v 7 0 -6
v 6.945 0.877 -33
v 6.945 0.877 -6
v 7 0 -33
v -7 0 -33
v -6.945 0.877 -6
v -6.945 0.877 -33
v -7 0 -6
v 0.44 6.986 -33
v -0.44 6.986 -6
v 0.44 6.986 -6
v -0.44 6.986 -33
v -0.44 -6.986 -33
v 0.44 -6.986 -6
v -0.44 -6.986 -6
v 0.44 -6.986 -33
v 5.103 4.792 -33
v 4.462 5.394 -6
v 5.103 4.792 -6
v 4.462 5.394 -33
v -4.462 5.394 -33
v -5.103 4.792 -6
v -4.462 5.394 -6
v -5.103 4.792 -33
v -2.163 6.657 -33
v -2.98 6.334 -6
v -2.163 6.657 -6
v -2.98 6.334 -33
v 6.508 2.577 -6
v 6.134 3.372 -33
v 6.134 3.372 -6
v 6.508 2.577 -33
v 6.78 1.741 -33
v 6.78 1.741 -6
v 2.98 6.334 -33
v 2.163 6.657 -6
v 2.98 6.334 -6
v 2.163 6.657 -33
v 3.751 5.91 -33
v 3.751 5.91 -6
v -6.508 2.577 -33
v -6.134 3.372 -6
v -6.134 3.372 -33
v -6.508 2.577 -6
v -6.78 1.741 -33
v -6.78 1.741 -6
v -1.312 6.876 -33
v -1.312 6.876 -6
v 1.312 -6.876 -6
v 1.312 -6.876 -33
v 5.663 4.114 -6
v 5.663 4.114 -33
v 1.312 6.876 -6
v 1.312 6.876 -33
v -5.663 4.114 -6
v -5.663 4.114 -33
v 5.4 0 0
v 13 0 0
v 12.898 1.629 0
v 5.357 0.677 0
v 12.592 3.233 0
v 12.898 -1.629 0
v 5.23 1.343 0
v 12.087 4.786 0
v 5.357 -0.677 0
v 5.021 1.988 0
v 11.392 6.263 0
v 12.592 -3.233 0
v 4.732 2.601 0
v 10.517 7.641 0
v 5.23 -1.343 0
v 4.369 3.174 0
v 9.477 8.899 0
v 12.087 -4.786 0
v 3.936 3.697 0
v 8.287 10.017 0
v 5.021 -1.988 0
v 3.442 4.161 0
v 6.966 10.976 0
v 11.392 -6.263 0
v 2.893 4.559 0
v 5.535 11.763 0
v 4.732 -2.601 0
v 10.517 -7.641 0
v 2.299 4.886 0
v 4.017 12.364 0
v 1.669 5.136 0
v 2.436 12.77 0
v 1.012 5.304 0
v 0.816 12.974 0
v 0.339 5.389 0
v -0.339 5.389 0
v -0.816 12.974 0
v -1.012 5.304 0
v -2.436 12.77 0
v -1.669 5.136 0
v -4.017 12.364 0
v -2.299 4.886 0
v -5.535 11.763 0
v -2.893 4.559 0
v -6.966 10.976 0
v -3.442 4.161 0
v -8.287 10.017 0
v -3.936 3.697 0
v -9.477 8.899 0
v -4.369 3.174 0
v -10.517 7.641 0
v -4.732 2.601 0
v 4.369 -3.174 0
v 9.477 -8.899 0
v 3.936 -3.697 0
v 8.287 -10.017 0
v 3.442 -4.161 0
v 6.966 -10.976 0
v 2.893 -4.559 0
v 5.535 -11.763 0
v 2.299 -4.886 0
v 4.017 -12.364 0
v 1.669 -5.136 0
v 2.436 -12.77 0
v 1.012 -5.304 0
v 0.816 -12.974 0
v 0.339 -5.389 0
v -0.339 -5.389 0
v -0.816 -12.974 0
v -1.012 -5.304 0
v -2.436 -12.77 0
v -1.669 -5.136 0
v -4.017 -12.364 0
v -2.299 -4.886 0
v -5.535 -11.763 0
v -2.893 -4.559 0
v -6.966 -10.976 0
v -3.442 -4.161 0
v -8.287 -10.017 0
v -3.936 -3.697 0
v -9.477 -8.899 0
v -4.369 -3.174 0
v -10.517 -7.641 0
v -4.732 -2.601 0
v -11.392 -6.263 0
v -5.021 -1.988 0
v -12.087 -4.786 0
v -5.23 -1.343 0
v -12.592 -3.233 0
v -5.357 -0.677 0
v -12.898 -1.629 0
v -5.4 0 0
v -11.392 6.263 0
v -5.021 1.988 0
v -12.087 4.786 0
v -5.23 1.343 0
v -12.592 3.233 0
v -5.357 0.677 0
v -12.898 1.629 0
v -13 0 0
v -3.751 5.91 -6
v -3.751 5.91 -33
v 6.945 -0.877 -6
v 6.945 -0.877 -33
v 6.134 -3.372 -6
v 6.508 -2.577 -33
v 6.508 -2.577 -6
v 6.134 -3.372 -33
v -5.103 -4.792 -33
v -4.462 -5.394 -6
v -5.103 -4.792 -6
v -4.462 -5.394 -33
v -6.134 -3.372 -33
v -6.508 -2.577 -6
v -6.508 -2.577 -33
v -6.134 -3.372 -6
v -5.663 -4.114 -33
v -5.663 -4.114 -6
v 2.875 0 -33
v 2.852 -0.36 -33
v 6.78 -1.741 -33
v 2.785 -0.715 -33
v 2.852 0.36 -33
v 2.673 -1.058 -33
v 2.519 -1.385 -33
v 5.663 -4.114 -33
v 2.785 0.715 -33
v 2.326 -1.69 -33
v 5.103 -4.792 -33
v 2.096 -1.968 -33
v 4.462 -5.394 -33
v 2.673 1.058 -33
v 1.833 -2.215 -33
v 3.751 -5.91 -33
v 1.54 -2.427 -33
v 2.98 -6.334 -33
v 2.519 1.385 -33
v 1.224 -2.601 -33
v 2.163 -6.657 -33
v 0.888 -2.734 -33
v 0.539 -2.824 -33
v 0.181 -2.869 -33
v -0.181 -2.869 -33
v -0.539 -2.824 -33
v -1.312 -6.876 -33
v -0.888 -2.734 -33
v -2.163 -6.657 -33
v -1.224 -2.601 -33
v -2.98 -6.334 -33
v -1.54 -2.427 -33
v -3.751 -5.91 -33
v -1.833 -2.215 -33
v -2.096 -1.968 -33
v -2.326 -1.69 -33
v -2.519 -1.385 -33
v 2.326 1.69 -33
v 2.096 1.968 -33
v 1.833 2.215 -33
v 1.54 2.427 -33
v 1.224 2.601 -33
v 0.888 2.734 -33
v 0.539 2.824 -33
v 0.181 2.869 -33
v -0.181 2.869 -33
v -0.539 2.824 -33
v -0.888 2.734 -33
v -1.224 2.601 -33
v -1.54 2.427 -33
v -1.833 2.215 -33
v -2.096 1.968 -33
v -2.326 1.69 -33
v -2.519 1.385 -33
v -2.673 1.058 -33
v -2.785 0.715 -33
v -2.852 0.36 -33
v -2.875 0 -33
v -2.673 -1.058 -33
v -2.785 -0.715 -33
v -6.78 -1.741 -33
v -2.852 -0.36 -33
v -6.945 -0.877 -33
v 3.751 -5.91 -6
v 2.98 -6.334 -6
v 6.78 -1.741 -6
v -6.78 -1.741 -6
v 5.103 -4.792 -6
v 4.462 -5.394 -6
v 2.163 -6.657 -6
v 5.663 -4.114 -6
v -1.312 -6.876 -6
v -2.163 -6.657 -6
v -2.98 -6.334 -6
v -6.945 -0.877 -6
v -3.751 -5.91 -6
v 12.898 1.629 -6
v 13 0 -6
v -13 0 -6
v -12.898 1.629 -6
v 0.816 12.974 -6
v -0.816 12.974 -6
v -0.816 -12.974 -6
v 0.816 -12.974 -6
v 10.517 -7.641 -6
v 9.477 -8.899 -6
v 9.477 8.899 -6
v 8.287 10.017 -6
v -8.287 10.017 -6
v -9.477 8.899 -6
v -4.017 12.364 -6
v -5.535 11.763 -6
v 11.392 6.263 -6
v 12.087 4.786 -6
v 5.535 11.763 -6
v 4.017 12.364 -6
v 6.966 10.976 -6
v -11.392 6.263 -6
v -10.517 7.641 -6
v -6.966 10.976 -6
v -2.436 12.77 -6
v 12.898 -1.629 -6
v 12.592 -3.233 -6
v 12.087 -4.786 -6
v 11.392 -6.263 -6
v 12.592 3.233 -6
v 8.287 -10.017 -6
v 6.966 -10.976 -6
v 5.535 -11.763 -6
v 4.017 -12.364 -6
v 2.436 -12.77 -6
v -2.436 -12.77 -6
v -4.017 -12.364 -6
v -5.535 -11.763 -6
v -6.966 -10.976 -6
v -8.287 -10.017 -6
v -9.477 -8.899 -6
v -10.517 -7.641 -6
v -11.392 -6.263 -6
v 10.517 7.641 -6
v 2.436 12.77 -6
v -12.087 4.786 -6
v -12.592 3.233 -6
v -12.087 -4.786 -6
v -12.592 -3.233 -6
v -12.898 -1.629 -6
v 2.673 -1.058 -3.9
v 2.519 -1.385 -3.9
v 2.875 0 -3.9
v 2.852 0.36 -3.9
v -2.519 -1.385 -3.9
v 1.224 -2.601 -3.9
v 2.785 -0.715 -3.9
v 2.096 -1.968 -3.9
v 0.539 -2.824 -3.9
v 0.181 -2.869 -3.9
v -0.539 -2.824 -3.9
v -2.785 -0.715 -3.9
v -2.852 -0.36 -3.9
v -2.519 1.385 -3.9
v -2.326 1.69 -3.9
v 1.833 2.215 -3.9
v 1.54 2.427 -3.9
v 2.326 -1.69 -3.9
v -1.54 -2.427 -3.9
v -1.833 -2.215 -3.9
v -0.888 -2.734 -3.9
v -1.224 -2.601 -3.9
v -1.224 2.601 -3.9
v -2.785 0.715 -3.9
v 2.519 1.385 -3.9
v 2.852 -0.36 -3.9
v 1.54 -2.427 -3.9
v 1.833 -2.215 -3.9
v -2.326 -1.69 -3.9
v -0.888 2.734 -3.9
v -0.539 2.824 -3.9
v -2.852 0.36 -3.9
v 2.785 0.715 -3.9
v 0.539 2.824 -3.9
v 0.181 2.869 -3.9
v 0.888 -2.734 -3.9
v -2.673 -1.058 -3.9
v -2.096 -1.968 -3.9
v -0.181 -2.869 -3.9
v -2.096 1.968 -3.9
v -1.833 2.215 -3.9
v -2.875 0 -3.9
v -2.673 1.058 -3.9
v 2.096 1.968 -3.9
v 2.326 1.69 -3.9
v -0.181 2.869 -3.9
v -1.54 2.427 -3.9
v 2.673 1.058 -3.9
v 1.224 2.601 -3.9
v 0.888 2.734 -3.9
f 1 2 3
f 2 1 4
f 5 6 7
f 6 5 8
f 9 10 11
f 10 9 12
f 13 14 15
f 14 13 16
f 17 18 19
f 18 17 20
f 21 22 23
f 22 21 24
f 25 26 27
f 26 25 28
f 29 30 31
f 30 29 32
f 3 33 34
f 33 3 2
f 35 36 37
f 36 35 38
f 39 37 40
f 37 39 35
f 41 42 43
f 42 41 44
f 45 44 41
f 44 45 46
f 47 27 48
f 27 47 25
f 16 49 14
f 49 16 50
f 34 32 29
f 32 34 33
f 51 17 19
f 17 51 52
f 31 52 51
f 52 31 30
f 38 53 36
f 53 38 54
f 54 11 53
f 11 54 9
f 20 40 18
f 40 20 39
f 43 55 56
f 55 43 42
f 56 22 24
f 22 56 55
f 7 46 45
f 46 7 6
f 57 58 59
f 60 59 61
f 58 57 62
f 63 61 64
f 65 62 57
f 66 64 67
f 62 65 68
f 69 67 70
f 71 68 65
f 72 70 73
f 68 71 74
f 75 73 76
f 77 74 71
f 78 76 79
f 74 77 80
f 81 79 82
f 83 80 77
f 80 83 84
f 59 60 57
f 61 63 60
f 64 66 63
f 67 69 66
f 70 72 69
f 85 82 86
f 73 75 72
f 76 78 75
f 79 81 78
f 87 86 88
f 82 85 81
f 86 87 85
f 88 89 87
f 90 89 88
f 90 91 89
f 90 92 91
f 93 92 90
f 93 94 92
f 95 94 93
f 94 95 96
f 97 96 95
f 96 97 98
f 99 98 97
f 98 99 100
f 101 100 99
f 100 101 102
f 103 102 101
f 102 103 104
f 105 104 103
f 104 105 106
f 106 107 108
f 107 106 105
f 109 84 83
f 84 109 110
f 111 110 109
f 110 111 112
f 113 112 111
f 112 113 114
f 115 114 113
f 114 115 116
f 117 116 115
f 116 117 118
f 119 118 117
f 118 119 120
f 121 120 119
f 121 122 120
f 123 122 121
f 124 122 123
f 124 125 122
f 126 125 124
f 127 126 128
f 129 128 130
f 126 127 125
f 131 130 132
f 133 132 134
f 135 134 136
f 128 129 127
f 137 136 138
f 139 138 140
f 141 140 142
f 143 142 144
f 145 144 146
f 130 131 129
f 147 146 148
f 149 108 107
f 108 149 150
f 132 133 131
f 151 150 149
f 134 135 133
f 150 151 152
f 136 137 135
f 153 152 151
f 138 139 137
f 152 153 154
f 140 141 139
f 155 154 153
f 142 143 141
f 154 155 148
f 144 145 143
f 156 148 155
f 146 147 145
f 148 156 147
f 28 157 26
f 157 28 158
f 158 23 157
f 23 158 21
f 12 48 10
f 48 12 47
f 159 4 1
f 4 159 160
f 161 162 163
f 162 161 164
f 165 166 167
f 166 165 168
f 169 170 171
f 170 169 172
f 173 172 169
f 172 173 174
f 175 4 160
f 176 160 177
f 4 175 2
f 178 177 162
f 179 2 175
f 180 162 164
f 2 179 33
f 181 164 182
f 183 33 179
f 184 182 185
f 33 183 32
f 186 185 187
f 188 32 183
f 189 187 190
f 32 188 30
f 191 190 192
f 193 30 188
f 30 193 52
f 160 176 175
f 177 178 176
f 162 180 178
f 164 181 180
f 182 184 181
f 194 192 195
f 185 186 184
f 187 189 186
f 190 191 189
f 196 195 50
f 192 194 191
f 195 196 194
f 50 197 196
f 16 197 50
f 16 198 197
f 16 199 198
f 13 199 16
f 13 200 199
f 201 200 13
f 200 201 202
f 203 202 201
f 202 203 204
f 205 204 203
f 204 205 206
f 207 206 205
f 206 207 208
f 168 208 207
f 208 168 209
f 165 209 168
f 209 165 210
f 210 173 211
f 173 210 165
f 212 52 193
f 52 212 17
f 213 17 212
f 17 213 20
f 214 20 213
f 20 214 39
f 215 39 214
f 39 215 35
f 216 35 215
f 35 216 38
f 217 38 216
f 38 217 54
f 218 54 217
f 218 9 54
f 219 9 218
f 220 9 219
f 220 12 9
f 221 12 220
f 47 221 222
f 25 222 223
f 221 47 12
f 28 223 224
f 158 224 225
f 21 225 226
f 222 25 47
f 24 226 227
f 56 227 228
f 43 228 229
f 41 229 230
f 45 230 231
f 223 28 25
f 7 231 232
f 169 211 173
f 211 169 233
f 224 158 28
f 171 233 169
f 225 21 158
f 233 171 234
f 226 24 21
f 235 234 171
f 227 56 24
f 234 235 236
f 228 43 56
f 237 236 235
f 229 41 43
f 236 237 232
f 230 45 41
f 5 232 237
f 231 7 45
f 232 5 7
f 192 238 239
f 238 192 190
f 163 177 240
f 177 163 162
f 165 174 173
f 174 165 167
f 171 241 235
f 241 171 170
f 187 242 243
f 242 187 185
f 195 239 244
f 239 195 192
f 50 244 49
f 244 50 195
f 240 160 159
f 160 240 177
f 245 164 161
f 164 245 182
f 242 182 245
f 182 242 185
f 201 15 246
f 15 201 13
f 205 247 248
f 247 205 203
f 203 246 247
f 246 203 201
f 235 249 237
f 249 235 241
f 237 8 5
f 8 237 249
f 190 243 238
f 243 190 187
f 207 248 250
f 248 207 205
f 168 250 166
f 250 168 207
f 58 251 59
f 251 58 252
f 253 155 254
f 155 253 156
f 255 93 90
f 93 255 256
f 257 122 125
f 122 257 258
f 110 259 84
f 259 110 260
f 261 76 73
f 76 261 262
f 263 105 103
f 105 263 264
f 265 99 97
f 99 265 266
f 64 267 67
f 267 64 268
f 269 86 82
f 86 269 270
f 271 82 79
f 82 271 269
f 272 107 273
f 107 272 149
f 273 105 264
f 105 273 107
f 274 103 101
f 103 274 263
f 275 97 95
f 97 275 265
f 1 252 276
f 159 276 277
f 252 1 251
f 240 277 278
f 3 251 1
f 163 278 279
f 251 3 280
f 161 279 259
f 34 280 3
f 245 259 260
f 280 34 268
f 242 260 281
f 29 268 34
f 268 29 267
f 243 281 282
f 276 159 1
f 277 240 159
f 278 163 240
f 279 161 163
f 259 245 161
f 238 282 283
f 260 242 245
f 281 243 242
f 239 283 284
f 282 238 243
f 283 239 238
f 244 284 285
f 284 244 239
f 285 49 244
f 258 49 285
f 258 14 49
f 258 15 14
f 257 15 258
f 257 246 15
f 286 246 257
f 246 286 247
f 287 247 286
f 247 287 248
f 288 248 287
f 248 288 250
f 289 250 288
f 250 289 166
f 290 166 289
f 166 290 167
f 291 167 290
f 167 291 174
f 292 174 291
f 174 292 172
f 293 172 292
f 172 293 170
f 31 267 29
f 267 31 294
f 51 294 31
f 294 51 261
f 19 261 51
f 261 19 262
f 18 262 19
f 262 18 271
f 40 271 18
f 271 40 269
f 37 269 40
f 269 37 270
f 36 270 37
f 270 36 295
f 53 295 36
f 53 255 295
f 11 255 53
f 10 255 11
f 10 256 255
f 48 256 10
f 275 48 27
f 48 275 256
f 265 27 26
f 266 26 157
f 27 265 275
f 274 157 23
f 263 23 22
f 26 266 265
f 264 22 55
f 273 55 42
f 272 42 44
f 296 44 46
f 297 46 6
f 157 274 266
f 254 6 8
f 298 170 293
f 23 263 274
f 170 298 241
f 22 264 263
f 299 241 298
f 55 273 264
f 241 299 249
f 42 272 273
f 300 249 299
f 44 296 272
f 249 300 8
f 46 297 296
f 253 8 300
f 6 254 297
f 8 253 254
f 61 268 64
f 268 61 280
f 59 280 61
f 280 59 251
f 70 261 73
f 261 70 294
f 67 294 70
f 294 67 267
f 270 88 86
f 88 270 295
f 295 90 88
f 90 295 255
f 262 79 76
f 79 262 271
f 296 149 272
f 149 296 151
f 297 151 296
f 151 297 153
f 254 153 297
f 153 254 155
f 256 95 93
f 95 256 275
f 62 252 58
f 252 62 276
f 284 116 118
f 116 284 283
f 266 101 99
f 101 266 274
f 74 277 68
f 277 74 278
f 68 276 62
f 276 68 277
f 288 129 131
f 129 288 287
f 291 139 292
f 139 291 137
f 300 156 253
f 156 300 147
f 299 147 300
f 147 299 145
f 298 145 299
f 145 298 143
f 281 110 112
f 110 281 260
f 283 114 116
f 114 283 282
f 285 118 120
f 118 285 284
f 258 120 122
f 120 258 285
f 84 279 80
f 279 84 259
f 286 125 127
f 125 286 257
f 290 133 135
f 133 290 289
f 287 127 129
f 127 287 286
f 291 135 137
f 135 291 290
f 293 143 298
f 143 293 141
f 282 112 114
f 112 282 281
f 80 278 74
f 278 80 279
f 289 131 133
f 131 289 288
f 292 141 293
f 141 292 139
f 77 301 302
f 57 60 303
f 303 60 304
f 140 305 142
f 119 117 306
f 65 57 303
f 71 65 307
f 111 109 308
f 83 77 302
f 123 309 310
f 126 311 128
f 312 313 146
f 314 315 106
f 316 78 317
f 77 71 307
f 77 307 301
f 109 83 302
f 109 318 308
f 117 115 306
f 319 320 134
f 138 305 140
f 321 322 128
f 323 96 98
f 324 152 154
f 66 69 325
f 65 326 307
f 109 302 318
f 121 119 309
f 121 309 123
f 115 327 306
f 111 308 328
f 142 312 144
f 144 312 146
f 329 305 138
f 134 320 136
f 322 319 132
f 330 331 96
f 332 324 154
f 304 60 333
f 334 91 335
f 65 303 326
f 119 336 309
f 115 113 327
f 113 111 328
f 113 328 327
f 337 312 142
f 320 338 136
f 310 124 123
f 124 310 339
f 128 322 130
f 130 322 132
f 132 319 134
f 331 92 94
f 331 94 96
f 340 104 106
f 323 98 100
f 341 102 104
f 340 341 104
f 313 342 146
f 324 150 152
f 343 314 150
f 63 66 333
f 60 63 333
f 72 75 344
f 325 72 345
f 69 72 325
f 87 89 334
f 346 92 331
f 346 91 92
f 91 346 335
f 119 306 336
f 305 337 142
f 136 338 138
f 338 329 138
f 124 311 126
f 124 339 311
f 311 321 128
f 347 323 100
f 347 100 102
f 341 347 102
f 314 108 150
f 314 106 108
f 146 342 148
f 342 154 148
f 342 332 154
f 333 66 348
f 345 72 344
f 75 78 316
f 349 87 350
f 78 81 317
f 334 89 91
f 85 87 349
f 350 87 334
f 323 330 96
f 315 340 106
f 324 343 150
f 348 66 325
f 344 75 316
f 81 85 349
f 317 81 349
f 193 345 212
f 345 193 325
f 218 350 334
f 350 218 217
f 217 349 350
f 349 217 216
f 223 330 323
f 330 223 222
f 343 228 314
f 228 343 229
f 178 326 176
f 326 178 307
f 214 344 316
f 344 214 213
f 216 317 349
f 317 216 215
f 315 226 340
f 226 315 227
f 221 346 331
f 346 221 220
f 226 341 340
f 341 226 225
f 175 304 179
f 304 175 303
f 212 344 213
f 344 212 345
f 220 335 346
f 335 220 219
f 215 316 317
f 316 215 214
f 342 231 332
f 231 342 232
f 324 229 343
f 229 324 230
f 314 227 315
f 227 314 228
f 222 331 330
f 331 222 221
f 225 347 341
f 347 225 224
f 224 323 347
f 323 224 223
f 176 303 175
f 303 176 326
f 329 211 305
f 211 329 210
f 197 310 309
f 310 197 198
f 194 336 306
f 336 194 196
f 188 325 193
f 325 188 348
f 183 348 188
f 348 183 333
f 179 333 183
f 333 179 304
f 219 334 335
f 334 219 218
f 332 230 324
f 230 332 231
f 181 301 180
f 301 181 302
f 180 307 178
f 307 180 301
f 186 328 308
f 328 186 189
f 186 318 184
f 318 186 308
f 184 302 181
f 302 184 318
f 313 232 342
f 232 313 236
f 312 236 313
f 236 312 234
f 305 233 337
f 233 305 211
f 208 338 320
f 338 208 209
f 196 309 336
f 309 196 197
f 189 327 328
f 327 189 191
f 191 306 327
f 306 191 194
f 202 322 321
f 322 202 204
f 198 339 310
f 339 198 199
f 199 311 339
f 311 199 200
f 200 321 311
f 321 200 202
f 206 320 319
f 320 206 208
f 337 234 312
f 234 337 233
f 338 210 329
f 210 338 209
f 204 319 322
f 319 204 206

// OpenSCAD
$fn = 50;


difference() {
	union() {
		translate(v = [0, 0, -33.0000000000]) {
			cylinder(h = 33, r = 7.0000000000);
		}
		translate(v = [0, 0, -6.0000000000]) {
			cylinder(h = 6, r = 13.0000000000);
		}
	}
	union() {
		translate(v = [0, 0, 0]) {
			rotate(a = [0, 0, 0]) {
				difference() {
					union() {
						#translate(v = [0, 0, -33.0000000000]) {
							cylinder(h = 33, r = 2.6000000000);
						}
						#translate(v = [0, 0, -3.9000000000]) {
							cylinder(h = 3.9000000000, r = 7.0000000000, r1 = 2.8750000000, r2 = 5.4000000000);
						}
						#translate(v = [0, 0, -33.0000000000]) {
							cylinder(h = 33, r = 2.8750000000);
						}
						#translate(v = [0, 0, -33.0000000000]) {
							cylinder(h = 33, r = 2.6000000000);
						}
					}
					union();
				}
			}
		}
	}
}
